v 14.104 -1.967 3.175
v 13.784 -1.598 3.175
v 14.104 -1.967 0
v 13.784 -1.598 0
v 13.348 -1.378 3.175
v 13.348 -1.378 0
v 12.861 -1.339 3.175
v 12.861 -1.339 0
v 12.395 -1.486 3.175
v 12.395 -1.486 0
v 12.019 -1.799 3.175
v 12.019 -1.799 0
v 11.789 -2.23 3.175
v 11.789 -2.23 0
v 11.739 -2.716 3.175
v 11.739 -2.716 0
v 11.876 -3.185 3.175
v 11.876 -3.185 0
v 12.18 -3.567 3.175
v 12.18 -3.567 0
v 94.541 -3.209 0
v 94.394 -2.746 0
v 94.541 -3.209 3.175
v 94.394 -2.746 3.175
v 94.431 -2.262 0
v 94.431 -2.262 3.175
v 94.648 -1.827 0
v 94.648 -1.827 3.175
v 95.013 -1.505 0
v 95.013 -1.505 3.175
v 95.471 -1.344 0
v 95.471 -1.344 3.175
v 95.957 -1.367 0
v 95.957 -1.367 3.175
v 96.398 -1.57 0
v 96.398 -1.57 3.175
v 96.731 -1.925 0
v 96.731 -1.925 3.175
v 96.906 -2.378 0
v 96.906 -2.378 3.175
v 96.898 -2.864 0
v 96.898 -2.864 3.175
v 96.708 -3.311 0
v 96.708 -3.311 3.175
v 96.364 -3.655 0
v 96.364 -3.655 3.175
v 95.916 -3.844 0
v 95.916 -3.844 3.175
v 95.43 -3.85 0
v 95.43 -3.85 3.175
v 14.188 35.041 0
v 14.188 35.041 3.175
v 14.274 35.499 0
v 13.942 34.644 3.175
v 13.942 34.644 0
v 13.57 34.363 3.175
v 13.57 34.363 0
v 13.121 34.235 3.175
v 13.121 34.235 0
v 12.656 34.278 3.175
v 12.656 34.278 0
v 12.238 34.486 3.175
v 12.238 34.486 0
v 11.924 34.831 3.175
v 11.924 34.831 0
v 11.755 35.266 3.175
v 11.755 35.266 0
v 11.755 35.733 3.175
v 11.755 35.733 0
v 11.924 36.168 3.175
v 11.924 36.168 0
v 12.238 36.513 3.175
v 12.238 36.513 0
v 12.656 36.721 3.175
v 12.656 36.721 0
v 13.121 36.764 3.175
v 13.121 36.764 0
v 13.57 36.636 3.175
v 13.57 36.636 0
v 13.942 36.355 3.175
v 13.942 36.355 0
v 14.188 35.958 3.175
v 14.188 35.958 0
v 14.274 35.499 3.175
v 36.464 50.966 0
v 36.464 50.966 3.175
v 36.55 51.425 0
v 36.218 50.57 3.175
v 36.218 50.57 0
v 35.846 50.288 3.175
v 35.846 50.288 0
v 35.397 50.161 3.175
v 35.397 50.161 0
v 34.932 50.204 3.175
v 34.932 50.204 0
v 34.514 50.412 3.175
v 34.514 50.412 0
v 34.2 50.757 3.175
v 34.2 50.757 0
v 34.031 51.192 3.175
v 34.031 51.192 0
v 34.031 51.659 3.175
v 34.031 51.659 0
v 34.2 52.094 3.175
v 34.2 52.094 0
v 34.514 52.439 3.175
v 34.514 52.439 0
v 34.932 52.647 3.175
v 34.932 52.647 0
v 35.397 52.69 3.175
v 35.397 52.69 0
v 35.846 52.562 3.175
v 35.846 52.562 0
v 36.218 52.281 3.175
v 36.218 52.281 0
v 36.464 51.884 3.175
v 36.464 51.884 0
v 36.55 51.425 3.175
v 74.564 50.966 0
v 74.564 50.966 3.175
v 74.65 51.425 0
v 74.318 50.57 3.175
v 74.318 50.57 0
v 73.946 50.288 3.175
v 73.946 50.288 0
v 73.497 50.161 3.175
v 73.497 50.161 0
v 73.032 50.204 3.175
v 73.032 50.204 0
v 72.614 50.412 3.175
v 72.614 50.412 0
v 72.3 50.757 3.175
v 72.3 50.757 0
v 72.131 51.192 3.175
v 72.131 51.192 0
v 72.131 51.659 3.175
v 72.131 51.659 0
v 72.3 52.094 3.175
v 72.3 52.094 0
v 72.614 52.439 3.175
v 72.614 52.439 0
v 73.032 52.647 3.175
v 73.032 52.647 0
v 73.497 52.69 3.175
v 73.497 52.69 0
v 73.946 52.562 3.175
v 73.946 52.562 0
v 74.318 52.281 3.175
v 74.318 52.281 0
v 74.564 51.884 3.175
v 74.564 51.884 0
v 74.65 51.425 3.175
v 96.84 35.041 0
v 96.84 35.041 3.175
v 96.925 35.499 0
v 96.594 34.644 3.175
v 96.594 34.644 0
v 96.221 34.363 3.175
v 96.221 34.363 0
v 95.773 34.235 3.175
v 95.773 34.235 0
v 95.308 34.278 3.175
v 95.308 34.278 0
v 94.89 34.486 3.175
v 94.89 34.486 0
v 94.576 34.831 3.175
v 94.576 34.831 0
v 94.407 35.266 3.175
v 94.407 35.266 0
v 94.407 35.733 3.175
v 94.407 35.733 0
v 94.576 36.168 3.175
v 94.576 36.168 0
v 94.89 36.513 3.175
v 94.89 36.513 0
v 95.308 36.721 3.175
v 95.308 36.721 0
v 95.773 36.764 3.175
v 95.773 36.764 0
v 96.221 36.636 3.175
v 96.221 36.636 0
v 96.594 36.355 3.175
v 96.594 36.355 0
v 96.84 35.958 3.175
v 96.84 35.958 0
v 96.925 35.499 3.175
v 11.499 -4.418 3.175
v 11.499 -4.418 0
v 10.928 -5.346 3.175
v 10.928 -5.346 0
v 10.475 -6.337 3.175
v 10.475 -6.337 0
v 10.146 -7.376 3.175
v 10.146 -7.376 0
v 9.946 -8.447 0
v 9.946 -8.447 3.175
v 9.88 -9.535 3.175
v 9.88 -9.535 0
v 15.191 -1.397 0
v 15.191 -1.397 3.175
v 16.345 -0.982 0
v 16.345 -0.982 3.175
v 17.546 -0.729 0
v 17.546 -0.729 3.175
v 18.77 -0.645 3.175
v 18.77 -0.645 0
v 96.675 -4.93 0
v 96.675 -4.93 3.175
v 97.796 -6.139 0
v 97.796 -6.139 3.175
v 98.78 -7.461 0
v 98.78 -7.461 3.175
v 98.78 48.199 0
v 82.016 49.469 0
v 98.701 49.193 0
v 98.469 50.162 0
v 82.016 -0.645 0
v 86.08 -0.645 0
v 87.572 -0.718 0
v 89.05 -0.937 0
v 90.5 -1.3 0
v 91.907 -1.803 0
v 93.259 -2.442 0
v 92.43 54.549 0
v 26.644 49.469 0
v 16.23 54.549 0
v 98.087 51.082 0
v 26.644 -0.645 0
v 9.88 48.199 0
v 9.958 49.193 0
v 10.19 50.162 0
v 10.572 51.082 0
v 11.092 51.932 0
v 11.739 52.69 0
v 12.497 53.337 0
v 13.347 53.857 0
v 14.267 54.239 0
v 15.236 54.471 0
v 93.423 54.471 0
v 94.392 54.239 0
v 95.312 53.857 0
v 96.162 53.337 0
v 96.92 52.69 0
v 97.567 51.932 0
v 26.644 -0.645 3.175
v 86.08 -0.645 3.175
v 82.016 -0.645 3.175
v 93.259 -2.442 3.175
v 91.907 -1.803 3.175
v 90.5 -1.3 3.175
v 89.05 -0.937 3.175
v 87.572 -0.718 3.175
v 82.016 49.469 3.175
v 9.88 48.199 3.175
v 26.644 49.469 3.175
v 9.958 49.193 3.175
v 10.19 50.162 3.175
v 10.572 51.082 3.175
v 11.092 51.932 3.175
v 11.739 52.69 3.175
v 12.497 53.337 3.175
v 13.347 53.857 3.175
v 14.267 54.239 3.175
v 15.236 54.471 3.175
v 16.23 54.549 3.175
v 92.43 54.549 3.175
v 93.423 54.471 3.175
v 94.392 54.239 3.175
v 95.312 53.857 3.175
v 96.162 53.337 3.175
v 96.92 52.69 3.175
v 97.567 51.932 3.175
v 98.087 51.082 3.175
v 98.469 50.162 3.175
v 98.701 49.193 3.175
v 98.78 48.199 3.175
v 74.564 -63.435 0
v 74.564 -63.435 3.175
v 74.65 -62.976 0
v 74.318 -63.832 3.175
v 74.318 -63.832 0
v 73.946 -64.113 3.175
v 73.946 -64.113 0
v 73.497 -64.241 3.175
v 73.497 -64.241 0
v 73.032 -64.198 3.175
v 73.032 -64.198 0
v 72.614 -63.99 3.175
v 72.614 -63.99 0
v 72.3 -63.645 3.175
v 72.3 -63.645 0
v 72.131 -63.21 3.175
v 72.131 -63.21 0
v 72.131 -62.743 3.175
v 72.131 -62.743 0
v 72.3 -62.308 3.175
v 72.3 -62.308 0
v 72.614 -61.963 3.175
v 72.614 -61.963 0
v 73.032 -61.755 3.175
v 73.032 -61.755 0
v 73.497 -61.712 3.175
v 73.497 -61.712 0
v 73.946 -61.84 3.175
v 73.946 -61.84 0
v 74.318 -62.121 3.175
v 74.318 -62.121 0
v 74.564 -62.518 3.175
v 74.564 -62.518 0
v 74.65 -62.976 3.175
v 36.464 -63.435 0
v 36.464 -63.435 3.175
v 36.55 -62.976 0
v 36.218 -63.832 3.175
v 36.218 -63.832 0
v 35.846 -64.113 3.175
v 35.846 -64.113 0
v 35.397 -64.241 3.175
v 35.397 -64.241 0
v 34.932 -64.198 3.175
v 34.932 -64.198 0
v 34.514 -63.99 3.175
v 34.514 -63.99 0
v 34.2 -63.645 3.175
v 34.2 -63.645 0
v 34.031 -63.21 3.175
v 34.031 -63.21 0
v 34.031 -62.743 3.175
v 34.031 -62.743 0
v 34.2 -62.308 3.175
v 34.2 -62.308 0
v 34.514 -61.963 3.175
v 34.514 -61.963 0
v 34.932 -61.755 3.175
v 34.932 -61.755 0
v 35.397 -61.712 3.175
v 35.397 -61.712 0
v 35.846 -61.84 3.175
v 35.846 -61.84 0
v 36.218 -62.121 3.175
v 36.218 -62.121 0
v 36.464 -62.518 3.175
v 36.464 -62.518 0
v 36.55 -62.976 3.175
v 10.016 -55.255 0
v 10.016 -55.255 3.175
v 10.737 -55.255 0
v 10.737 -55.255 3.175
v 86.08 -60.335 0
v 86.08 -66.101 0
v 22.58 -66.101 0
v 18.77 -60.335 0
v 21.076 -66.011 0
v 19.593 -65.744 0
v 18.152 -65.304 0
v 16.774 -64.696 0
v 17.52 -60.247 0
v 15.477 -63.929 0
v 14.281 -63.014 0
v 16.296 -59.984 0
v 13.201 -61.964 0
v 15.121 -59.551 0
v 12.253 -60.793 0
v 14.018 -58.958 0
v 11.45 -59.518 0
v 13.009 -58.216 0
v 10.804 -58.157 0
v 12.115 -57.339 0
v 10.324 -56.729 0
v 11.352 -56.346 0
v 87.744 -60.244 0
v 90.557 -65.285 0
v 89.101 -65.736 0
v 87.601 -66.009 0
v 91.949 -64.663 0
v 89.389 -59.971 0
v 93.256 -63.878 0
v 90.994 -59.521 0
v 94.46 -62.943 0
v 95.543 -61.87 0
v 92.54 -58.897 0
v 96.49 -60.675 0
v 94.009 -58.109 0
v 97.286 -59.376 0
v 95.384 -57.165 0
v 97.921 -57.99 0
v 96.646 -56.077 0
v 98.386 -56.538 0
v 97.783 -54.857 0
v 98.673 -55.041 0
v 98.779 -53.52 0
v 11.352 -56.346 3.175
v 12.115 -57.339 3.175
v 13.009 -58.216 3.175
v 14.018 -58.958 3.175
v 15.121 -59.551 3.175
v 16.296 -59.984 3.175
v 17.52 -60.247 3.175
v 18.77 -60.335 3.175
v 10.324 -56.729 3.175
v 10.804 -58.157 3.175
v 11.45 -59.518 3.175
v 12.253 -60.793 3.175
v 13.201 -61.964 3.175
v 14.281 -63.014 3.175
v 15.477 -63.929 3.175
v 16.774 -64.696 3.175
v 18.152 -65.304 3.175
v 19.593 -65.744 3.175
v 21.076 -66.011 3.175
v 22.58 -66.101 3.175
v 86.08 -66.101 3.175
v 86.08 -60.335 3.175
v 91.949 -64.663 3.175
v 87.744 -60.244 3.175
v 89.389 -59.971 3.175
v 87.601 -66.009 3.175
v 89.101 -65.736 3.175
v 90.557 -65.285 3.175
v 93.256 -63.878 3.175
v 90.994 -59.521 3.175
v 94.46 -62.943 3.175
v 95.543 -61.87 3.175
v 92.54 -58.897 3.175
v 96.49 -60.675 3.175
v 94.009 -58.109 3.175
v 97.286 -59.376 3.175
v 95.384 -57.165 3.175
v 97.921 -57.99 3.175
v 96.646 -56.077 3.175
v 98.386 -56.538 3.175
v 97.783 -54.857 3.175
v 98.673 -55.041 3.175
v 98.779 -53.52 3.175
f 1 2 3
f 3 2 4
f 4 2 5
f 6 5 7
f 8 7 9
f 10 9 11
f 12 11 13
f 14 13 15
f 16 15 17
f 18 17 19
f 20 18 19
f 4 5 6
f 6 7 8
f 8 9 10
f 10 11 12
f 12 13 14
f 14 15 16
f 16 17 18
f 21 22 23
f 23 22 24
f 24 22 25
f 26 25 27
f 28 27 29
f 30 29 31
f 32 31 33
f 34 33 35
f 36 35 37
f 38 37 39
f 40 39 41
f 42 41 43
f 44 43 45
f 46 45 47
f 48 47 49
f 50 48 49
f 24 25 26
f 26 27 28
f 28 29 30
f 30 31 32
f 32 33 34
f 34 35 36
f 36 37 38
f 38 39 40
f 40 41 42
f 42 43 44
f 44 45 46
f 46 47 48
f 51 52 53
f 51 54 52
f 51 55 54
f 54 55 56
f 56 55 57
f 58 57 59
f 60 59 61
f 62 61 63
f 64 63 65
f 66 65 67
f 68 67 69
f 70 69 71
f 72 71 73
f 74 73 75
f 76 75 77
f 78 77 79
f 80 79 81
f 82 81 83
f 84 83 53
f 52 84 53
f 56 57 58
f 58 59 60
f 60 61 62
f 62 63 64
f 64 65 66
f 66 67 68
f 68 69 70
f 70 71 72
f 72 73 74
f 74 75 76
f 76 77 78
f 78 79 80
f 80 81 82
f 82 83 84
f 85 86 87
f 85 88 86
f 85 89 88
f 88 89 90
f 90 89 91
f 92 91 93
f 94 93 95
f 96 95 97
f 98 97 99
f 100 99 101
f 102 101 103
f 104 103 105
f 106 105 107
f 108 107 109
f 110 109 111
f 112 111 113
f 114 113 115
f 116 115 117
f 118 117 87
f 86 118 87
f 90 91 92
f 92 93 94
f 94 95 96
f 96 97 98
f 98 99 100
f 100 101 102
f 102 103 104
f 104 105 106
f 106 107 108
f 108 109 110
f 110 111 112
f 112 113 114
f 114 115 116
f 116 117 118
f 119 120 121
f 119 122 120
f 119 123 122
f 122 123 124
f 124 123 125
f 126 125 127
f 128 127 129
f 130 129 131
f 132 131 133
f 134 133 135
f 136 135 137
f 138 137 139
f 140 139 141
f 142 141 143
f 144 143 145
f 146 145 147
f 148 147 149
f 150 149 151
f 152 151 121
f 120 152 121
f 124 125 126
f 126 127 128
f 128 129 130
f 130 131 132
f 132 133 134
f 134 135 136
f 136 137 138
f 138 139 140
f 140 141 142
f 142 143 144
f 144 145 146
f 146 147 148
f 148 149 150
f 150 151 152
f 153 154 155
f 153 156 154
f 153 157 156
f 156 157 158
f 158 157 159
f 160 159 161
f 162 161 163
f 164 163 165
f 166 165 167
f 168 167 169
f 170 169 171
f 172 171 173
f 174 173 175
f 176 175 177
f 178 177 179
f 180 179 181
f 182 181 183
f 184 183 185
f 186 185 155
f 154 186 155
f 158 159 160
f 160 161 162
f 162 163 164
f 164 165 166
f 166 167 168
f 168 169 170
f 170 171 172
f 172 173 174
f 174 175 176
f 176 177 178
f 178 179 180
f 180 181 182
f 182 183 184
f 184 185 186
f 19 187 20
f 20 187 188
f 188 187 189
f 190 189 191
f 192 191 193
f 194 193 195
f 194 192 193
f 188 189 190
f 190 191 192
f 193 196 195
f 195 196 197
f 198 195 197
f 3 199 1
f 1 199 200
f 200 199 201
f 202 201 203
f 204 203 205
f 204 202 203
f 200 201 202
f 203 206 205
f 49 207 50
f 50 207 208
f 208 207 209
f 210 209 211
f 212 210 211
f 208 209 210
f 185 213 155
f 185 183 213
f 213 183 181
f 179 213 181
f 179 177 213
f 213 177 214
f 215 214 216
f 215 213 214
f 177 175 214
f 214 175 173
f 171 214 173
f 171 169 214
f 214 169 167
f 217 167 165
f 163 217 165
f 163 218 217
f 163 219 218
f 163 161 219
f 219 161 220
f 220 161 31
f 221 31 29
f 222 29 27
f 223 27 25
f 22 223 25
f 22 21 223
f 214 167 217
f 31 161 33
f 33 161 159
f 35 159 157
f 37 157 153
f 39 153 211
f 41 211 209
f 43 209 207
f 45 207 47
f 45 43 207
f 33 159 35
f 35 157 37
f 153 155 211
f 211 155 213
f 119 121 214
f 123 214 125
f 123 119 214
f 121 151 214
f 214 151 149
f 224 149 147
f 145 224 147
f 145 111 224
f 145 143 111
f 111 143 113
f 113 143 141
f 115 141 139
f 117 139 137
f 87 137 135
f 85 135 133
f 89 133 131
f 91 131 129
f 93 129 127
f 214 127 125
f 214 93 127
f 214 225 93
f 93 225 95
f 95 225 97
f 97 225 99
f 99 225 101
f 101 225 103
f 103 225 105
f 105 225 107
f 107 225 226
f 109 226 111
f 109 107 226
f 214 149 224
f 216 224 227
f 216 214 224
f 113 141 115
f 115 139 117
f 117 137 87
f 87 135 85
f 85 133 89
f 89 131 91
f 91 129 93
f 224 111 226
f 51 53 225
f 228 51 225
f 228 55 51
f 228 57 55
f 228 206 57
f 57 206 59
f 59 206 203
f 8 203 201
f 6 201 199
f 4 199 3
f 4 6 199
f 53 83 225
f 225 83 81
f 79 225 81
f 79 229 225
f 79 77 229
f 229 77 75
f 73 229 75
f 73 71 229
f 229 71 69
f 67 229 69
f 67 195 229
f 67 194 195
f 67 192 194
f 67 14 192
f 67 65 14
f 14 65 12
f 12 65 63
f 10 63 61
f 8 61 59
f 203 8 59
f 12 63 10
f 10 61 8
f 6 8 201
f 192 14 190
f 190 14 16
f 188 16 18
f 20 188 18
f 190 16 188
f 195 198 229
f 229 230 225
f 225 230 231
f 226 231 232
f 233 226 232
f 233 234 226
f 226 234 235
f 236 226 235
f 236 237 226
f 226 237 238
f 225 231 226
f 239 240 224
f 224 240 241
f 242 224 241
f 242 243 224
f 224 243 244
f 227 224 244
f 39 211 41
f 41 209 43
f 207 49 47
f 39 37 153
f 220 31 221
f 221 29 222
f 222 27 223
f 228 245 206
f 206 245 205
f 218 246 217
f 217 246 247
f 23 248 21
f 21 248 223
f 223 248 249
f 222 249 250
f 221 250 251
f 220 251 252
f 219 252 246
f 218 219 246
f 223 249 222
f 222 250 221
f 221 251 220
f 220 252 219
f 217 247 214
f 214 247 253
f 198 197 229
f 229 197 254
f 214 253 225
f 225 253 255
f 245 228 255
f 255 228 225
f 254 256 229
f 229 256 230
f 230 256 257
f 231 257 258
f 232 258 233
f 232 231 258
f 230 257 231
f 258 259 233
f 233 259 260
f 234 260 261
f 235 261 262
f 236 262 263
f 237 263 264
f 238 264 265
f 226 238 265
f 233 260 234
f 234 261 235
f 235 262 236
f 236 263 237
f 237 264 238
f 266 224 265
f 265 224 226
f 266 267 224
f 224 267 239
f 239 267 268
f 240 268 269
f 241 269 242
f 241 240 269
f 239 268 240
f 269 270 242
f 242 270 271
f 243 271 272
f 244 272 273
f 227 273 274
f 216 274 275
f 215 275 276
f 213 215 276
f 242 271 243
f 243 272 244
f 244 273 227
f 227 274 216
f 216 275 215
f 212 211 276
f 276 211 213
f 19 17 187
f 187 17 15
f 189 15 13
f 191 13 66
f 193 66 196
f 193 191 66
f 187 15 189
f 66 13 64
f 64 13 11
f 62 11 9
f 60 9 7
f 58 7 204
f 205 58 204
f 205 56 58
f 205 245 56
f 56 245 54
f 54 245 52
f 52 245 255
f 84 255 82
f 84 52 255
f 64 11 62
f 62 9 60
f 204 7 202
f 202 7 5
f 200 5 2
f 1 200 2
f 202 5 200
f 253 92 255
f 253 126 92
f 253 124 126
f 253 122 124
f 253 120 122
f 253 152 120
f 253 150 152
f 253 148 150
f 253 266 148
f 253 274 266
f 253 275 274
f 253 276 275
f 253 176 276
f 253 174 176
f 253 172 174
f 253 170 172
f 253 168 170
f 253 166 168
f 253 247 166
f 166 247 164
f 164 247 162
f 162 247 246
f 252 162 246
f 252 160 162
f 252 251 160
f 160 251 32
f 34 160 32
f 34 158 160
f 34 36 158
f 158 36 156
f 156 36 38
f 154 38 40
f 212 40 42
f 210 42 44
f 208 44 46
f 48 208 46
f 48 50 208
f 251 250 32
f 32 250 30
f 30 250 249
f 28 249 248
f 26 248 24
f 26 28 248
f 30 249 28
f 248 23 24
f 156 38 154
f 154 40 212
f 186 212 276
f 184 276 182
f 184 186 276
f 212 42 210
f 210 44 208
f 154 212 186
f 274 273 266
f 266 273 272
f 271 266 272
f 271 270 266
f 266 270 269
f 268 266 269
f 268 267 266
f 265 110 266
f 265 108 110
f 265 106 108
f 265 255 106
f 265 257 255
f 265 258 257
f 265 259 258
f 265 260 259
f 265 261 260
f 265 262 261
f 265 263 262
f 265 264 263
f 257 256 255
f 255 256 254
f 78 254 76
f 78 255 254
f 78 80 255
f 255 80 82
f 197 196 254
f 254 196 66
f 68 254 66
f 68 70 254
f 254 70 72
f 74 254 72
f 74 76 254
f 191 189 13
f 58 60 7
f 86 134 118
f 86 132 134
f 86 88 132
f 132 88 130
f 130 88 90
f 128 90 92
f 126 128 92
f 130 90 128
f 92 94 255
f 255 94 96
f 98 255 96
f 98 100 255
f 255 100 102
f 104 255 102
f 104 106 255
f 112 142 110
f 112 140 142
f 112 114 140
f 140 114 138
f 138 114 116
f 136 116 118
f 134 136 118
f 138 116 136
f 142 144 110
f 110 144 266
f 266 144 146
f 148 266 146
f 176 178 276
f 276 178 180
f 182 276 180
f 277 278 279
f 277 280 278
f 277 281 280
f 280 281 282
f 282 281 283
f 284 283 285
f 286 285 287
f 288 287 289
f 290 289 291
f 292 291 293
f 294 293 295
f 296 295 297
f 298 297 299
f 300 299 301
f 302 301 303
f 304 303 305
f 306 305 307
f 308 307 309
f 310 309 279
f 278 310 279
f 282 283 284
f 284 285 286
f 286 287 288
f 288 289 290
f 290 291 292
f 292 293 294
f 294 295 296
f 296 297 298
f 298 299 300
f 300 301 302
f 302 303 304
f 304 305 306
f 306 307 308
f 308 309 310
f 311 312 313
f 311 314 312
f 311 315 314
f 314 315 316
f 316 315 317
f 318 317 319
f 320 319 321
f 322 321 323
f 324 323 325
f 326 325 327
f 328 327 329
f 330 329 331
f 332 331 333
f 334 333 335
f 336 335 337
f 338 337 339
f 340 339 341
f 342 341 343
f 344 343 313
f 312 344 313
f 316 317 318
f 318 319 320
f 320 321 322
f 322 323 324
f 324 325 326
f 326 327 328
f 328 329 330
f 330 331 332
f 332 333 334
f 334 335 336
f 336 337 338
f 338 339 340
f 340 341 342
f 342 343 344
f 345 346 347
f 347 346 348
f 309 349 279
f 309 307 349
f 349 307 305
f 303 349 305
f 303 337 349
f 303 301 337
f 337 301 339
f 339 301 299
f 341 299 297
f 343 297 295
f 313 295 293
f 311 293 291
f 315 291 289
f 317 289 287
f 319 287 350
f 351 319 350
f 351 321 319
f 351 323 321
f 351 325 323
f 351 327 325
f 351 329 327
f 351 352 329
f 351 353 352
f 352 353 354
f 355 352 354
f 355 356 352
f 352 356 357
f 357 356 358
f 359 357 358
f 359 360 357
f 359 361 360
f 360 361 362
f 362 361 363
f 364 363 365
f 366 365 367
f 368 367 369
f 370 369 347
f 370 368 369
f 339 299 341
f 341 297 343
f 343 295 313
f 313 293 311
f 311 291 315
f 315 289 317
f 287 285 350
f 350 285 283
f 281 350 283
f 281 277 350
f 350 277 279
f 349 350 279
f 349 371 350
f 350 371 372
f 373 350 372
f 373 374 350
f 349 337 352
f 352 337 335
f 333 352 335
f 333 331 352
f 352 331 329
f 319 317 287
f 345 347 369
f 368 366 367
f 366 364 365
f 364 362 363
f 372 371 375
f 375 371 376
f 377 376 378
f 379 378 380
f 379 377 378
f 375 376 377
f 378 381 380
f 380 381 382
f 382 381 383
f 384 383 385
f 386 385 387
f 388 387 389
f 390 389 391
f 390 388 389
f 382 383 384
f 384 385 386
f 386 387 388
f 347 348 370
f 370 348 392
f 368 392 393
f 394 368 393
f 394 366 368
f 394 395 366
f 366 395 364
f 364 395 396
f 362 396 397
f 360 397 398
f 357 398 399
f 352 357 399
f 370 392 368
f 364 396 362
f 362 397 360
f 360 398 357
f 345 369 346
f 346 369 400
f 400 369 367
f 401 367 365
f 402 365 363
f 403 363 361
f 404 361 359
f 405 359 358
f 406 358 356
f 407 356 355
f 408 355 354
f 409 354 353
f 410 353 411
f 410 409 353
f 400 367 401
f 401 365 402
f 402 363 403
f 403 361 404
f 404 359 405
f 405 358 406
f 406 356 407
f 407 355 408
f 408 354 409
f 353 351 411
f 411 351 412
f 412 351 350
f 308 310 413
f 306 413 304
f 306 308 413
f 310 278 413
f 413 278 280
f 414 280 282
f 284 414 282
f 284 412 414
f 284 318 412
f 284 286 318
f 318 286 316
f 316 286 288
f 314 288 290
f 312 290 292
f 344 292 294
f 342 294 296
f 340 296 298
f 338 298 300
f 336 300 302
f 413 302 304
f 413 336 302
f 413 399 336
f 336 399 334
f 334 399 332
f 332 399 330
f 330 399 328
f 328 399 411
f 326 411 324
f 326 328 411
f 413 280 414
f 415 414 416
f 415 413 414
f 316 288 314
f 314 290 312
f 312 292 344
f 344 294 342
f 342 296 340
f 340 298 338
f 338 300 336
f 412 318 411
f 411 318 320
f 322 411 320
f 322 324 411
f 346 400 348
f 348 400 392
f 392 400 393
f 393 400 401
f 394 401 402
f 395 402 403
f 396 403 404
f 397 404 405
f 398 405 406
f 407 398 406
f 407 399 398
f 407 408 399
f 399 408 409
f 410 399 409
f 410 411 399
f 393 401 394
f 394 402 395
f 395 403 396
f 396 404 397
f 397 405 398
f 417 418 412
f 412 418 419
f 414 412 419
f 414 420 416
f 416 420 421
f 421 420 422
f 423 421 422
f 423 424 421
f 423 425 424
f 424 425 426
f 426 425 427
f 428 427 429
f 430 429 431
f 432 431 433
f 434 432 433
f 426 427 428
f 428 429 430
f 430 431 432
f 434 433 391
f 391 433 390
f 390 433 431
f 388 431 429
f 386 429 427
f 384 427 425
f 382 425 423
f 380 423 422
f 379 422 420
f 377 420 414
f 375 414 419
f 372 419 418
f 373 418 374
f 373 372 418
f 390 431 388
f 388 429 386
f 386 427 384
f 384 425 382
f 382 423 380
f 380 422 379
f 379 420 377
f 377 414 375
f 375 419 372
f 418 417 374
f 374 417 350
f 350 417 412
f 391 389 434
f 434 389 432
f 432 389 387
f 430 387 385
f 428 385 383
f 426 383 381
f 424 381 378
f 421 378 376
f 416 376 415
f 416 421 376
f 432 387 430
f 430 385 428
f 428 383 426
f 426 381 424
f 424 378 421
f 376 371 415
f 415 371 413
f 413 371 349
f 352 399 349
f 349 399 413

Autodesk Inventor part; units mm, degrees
ref_plane "YZ Plane" through (0, 0, 0) normal (1, 0, 0) x (0, 1, 0)
ref_plane "XZ Plane" through (0, 0, 0) normal (0, 1, 0) x (-1, 0, 0)
ref_plane "XY Plane" through (0, 0, 0) normal (0, 0, 1) x (1, 0, 0)
sketch "Sketch1" plane through (0, 0, 0) normal (0, 0, 1) x (1, 0, 0)
  line L0 (9.8795, 48.1994) -> (9.8795, -53.4006)
  line L1 (16.2295, 54.5494) -> (92.4295, 54.5494)
  line L2 (98.7795, 48.1994) -> (98.7795, -53.4006)
  line L3 (22.5795, -66.1006) -> (86.0795, -66.1006)
  arc A0 (9.8795, -53.4006) -> (22.5795, -66.1006) centre (22.5795, -53.4006) ccw
  arc A1 (16.2295, 54.5494) -> (9.8795, 48.1994) centre (16.2295, 48.1994) ccw
  arc A2 (98.7795, 48.1994) -> (92.4295, 54.5494) centre (92.4295, 48.1994) ccw
  arc A3 (86.0795, -66.1006) -> (98.7795, -53.4006) centre (86.0795, -53.4006) ccw
  point P0 (0, 0)
  dimension "d0" = 12.7
  dimension "d1" = 6.35
  dimension "d2" = 120.65
  dimension "d3" = 88.9
extrude "Extrusion1" add sketch "Sketch1" along normal blind 3.175
sketch "Sketch2" plane through (0, 0, 3.175) normal (0, 0, 1) x (1, 0, 0)
  line L0 (9.8795, -53.4006) -> (9.8795, 48.1994) projected
  line L1 (98.7795, 48.1994) -> (98.7795, -53.4006) projected
  line L2 (16.2295, 54.5494) -> (92.4295, 54.5494) projected
  line L3 (26.6435, 49.4694) -> (82.0155, 49.4694)
  line L4 (82.0155, 49.4694) -> (82.0155, -1.3306)
  line L5 (82.0155, -1.3306) -> (26.6435, -1.3306)
  line L6 (26.6435, -1.3306) -> (26.6435, 49.4694)
  point P0 (0, 0)
  dimension "d13" = 16.764
  dimension "d14" = 16.764
  dimension "d15" = 5.08
  dimension "d16" = 55.88
extrude "Extrusion2" cut sketch "Sketch2" against normal through all
sketch "Sketch8" plane through (0, 0, 3.175) normal (0, 0, 1) x (1, 0, 0)
  line L0 (82.0155, -1.3306) -> (26.6435, -1.3306) projected
  line L1 (9.8795, -53.4006) -> (9.8795, 48.1994) projected
  line L2 (98.7795, 48.1994) -> (98.7795, -53.4006) projected
  line L3 (18.7695, -2.6006) -> (86.0795, -2.6006)
  line L4 (12.3173, -6.9948) -> (9.8795, -6.9948)
  arc A0 (86.1117, -10.6693) -> (86.0795, -10.656) centre (83.9402, -15.8848) ccw
  line L5 (86.0795, -66.1006) -> (22.5795, -66.1006) projected
  arc A1 (18.7695, -2.6006) -> (12.3173, -6.9948) centre (18.7695, -9.5348) ccw
  arc A2 (9.8795, -51.4448) -> (18.7695, -60.3348) centre (18.7695, -51.4448) ccw
  arc A3 (86.0795, -60.3348) -> (98.7795, -53.519) centre (86.0795, -45.0948) ccw
  line L6 (86.0795, -60.3348) -> (18.7695, -60.3348)
  arc A4 (98.7795, -15.3006) -> (86.0795, -2.6006) centre (86.0795, -15.3006) ccw
  line L7 (9.8795, -6.9948) -> (9.8795, -51.4448)
  line L8 (98.7795, -15.3006) -> (98.7795, -53.519)
  point P0 (0, 0)
  dimension "d70" = 1.27
  dimension "d89" = 8.89
  dimension "d90" = 56.5658
  dimension "d95" = 8.89
  dimension "d96" = 14.6558
  dimension "d101" = 12.7
  dimension "d102" = 21.0058
  dimension "d103" = 12.7
  dimension "d104" = 50.2158
  dimension "d105" = 5.7658
  dimension "d107" = 59.1058
extrude "Extrusion16" [suppressed]
sketch "Sketch9" plane through (0, 0, 3.175) normal (0, 0, 1) x (1, 0, 0)
  line L0 (9.8795, -53.4006) -> (9.8795, 48.1994) projected
  line L1 (86.0795, -66.1006) -> (22.5795, -66.1006) projected
  line L2 (98.7795, 48.1994) -> (98.7795, -53.4006) projected
  arc A0 (18.7695, -3.1848) -> (12.4195, -9.5348) centre (18.7695, -9.5348) ccw
  arc A1 (98.7795, -15.8848) -> (86.0795, -3.1848) centre (86.0795, -15.8848) ccw
  arc A2 (12.4195, -51.4448) -> (18.7695, -57.7948) centre (18.7695, -51.4448) ccw
  arc A3 (86.0795, -57.7948) -> (98.7795, -45.0948) centre (86.0795, -45.0948) ccw
  line L3 (18.7695, -3.1848) -> (86.0795, -3.1848)
  line L4 (98.7795, -15.8848) -> (98.7795, -45.0948)
  line L5 (86.0795, -57.7948) -> (18.7695, -57.7948)
  line L6 (12.4195, -51.4448) -> (12.4195, -9.5348)
  arc A4 (101.3195, -15.8848) -> (86.0795, -0.6448) centre (86.0795, -15.8848) ccw
  line L7 (101.3195, -15.8848) -> (101.3195, -45.0948)
  arc A5 (86.0795, -60.3348) -> (101.3195, -45.0948) centre (86.0795, -45.0948) ccw
  line L8 (86.0795, -60.3348) -> (18.7695, -60.3348)
  arc A6 (9.8795, -51.4448) -> (18.7695, -60.3348) centre (18.7695, -51.4448) ccw
  line L9 (9.8795, -51.4448) -> (9.8795, -9.5348)
  arc A7 (18.7695, -0.6448) -> (9.8795, -9.5348) centre (18.7695, -9.5348) ccw
  line L10 (18.7695, -0.6448) -> (86.0795, -0.6448)
  point P0 (0, 0)
  dimension "d110" = 6.35
  dimension "d111" = 6.35
  dimension "d112" = 12.7
  dimension "d113" = 12.7
  dimension "d114" = 54.61
  dimension "d115" = 86.36
  dimension "d116" = 8.3058
extrude "Extrusion17" cut sketch "Sketch9" against normal through all contours L2 A3 L5 A2 L6 A0 L3 A1 | L0 A7 L10 A4 L7 A5 L8 A6
sketch "Sketch10" plane through (0, 0, 3.175) normal (0, 0, 1) x (1, 0, 0)
  arc A0 (9.8795, -51.4448) -> (18.7695, -60.3348) centre (18.7695, -51.4448) ccw projected
  line L0 (9.8795, -53.4006) -> (9.8795, -51.4448) projected
  arc A1 (9.8795, -53.4006) -> (22.5795, -66.1006) centre (22.5795, -53.4006) ccw projected
  line L1 (10.0156, -55.2548) -> (10.7373, -55.2548)
  point P0 (0, 0)
  dimension "d119" = 3.81
extrude "Extrusion18" cut sketch "Sketch10" against normal through all
sketch "Sketch11" plane through (0, 0, 3.175) normal (0, 0, 1) x (1, 0, 0)
  line L0 (98.7795, 48.1994) -> (98.7795, -7.4606) projected
  line L1 (16.2295, 54.5494) -> (92.4295, 54.5494) projected
  line L2 (9.8795, -9.5348) -> (9.8795, 48.1994) projected
  circle A0 centre (13.0037, 35.4994) radius 1.27
  circle A1 centre (13.0037, -2.6006) radius 1.27
  circle A2 centre (35.2795, 51.4252) radius 1.27
  circle A3 centre (73.3795, 51.4252) radius 1.27
  circle A4 centre (95.6553, 35.4994) radius 1.27
  circle A5 centre (95.6553, -2.6006) radius 1.27
  circle A6 centre (73.3795, -62.9764) radius 1.27
  circle A7 centre (35.2795, -62.9764) radius 1.27
  line L3 (86.0795, -66.1006) -> (22.5795, -66.1006) projected
  point P0 (0, 0)
  dimension "d122" = 3.1242
  dimension "d123" = 3.1242
  dimension "d124" = 3.1242
  dimension "d125" = 2.54
  dimension "d126" = 19.05
  dimension "d127" = 3.1242
  dimension "d129" = 38.1
  dimension "d130" = 25.4
  dimension "d131" = 38.1
extrude "Extrusion19" cut sketch "Sketch11" against normal through all
equation "\"d14\" = d13"
properties part number "beagle_spacer_top"
